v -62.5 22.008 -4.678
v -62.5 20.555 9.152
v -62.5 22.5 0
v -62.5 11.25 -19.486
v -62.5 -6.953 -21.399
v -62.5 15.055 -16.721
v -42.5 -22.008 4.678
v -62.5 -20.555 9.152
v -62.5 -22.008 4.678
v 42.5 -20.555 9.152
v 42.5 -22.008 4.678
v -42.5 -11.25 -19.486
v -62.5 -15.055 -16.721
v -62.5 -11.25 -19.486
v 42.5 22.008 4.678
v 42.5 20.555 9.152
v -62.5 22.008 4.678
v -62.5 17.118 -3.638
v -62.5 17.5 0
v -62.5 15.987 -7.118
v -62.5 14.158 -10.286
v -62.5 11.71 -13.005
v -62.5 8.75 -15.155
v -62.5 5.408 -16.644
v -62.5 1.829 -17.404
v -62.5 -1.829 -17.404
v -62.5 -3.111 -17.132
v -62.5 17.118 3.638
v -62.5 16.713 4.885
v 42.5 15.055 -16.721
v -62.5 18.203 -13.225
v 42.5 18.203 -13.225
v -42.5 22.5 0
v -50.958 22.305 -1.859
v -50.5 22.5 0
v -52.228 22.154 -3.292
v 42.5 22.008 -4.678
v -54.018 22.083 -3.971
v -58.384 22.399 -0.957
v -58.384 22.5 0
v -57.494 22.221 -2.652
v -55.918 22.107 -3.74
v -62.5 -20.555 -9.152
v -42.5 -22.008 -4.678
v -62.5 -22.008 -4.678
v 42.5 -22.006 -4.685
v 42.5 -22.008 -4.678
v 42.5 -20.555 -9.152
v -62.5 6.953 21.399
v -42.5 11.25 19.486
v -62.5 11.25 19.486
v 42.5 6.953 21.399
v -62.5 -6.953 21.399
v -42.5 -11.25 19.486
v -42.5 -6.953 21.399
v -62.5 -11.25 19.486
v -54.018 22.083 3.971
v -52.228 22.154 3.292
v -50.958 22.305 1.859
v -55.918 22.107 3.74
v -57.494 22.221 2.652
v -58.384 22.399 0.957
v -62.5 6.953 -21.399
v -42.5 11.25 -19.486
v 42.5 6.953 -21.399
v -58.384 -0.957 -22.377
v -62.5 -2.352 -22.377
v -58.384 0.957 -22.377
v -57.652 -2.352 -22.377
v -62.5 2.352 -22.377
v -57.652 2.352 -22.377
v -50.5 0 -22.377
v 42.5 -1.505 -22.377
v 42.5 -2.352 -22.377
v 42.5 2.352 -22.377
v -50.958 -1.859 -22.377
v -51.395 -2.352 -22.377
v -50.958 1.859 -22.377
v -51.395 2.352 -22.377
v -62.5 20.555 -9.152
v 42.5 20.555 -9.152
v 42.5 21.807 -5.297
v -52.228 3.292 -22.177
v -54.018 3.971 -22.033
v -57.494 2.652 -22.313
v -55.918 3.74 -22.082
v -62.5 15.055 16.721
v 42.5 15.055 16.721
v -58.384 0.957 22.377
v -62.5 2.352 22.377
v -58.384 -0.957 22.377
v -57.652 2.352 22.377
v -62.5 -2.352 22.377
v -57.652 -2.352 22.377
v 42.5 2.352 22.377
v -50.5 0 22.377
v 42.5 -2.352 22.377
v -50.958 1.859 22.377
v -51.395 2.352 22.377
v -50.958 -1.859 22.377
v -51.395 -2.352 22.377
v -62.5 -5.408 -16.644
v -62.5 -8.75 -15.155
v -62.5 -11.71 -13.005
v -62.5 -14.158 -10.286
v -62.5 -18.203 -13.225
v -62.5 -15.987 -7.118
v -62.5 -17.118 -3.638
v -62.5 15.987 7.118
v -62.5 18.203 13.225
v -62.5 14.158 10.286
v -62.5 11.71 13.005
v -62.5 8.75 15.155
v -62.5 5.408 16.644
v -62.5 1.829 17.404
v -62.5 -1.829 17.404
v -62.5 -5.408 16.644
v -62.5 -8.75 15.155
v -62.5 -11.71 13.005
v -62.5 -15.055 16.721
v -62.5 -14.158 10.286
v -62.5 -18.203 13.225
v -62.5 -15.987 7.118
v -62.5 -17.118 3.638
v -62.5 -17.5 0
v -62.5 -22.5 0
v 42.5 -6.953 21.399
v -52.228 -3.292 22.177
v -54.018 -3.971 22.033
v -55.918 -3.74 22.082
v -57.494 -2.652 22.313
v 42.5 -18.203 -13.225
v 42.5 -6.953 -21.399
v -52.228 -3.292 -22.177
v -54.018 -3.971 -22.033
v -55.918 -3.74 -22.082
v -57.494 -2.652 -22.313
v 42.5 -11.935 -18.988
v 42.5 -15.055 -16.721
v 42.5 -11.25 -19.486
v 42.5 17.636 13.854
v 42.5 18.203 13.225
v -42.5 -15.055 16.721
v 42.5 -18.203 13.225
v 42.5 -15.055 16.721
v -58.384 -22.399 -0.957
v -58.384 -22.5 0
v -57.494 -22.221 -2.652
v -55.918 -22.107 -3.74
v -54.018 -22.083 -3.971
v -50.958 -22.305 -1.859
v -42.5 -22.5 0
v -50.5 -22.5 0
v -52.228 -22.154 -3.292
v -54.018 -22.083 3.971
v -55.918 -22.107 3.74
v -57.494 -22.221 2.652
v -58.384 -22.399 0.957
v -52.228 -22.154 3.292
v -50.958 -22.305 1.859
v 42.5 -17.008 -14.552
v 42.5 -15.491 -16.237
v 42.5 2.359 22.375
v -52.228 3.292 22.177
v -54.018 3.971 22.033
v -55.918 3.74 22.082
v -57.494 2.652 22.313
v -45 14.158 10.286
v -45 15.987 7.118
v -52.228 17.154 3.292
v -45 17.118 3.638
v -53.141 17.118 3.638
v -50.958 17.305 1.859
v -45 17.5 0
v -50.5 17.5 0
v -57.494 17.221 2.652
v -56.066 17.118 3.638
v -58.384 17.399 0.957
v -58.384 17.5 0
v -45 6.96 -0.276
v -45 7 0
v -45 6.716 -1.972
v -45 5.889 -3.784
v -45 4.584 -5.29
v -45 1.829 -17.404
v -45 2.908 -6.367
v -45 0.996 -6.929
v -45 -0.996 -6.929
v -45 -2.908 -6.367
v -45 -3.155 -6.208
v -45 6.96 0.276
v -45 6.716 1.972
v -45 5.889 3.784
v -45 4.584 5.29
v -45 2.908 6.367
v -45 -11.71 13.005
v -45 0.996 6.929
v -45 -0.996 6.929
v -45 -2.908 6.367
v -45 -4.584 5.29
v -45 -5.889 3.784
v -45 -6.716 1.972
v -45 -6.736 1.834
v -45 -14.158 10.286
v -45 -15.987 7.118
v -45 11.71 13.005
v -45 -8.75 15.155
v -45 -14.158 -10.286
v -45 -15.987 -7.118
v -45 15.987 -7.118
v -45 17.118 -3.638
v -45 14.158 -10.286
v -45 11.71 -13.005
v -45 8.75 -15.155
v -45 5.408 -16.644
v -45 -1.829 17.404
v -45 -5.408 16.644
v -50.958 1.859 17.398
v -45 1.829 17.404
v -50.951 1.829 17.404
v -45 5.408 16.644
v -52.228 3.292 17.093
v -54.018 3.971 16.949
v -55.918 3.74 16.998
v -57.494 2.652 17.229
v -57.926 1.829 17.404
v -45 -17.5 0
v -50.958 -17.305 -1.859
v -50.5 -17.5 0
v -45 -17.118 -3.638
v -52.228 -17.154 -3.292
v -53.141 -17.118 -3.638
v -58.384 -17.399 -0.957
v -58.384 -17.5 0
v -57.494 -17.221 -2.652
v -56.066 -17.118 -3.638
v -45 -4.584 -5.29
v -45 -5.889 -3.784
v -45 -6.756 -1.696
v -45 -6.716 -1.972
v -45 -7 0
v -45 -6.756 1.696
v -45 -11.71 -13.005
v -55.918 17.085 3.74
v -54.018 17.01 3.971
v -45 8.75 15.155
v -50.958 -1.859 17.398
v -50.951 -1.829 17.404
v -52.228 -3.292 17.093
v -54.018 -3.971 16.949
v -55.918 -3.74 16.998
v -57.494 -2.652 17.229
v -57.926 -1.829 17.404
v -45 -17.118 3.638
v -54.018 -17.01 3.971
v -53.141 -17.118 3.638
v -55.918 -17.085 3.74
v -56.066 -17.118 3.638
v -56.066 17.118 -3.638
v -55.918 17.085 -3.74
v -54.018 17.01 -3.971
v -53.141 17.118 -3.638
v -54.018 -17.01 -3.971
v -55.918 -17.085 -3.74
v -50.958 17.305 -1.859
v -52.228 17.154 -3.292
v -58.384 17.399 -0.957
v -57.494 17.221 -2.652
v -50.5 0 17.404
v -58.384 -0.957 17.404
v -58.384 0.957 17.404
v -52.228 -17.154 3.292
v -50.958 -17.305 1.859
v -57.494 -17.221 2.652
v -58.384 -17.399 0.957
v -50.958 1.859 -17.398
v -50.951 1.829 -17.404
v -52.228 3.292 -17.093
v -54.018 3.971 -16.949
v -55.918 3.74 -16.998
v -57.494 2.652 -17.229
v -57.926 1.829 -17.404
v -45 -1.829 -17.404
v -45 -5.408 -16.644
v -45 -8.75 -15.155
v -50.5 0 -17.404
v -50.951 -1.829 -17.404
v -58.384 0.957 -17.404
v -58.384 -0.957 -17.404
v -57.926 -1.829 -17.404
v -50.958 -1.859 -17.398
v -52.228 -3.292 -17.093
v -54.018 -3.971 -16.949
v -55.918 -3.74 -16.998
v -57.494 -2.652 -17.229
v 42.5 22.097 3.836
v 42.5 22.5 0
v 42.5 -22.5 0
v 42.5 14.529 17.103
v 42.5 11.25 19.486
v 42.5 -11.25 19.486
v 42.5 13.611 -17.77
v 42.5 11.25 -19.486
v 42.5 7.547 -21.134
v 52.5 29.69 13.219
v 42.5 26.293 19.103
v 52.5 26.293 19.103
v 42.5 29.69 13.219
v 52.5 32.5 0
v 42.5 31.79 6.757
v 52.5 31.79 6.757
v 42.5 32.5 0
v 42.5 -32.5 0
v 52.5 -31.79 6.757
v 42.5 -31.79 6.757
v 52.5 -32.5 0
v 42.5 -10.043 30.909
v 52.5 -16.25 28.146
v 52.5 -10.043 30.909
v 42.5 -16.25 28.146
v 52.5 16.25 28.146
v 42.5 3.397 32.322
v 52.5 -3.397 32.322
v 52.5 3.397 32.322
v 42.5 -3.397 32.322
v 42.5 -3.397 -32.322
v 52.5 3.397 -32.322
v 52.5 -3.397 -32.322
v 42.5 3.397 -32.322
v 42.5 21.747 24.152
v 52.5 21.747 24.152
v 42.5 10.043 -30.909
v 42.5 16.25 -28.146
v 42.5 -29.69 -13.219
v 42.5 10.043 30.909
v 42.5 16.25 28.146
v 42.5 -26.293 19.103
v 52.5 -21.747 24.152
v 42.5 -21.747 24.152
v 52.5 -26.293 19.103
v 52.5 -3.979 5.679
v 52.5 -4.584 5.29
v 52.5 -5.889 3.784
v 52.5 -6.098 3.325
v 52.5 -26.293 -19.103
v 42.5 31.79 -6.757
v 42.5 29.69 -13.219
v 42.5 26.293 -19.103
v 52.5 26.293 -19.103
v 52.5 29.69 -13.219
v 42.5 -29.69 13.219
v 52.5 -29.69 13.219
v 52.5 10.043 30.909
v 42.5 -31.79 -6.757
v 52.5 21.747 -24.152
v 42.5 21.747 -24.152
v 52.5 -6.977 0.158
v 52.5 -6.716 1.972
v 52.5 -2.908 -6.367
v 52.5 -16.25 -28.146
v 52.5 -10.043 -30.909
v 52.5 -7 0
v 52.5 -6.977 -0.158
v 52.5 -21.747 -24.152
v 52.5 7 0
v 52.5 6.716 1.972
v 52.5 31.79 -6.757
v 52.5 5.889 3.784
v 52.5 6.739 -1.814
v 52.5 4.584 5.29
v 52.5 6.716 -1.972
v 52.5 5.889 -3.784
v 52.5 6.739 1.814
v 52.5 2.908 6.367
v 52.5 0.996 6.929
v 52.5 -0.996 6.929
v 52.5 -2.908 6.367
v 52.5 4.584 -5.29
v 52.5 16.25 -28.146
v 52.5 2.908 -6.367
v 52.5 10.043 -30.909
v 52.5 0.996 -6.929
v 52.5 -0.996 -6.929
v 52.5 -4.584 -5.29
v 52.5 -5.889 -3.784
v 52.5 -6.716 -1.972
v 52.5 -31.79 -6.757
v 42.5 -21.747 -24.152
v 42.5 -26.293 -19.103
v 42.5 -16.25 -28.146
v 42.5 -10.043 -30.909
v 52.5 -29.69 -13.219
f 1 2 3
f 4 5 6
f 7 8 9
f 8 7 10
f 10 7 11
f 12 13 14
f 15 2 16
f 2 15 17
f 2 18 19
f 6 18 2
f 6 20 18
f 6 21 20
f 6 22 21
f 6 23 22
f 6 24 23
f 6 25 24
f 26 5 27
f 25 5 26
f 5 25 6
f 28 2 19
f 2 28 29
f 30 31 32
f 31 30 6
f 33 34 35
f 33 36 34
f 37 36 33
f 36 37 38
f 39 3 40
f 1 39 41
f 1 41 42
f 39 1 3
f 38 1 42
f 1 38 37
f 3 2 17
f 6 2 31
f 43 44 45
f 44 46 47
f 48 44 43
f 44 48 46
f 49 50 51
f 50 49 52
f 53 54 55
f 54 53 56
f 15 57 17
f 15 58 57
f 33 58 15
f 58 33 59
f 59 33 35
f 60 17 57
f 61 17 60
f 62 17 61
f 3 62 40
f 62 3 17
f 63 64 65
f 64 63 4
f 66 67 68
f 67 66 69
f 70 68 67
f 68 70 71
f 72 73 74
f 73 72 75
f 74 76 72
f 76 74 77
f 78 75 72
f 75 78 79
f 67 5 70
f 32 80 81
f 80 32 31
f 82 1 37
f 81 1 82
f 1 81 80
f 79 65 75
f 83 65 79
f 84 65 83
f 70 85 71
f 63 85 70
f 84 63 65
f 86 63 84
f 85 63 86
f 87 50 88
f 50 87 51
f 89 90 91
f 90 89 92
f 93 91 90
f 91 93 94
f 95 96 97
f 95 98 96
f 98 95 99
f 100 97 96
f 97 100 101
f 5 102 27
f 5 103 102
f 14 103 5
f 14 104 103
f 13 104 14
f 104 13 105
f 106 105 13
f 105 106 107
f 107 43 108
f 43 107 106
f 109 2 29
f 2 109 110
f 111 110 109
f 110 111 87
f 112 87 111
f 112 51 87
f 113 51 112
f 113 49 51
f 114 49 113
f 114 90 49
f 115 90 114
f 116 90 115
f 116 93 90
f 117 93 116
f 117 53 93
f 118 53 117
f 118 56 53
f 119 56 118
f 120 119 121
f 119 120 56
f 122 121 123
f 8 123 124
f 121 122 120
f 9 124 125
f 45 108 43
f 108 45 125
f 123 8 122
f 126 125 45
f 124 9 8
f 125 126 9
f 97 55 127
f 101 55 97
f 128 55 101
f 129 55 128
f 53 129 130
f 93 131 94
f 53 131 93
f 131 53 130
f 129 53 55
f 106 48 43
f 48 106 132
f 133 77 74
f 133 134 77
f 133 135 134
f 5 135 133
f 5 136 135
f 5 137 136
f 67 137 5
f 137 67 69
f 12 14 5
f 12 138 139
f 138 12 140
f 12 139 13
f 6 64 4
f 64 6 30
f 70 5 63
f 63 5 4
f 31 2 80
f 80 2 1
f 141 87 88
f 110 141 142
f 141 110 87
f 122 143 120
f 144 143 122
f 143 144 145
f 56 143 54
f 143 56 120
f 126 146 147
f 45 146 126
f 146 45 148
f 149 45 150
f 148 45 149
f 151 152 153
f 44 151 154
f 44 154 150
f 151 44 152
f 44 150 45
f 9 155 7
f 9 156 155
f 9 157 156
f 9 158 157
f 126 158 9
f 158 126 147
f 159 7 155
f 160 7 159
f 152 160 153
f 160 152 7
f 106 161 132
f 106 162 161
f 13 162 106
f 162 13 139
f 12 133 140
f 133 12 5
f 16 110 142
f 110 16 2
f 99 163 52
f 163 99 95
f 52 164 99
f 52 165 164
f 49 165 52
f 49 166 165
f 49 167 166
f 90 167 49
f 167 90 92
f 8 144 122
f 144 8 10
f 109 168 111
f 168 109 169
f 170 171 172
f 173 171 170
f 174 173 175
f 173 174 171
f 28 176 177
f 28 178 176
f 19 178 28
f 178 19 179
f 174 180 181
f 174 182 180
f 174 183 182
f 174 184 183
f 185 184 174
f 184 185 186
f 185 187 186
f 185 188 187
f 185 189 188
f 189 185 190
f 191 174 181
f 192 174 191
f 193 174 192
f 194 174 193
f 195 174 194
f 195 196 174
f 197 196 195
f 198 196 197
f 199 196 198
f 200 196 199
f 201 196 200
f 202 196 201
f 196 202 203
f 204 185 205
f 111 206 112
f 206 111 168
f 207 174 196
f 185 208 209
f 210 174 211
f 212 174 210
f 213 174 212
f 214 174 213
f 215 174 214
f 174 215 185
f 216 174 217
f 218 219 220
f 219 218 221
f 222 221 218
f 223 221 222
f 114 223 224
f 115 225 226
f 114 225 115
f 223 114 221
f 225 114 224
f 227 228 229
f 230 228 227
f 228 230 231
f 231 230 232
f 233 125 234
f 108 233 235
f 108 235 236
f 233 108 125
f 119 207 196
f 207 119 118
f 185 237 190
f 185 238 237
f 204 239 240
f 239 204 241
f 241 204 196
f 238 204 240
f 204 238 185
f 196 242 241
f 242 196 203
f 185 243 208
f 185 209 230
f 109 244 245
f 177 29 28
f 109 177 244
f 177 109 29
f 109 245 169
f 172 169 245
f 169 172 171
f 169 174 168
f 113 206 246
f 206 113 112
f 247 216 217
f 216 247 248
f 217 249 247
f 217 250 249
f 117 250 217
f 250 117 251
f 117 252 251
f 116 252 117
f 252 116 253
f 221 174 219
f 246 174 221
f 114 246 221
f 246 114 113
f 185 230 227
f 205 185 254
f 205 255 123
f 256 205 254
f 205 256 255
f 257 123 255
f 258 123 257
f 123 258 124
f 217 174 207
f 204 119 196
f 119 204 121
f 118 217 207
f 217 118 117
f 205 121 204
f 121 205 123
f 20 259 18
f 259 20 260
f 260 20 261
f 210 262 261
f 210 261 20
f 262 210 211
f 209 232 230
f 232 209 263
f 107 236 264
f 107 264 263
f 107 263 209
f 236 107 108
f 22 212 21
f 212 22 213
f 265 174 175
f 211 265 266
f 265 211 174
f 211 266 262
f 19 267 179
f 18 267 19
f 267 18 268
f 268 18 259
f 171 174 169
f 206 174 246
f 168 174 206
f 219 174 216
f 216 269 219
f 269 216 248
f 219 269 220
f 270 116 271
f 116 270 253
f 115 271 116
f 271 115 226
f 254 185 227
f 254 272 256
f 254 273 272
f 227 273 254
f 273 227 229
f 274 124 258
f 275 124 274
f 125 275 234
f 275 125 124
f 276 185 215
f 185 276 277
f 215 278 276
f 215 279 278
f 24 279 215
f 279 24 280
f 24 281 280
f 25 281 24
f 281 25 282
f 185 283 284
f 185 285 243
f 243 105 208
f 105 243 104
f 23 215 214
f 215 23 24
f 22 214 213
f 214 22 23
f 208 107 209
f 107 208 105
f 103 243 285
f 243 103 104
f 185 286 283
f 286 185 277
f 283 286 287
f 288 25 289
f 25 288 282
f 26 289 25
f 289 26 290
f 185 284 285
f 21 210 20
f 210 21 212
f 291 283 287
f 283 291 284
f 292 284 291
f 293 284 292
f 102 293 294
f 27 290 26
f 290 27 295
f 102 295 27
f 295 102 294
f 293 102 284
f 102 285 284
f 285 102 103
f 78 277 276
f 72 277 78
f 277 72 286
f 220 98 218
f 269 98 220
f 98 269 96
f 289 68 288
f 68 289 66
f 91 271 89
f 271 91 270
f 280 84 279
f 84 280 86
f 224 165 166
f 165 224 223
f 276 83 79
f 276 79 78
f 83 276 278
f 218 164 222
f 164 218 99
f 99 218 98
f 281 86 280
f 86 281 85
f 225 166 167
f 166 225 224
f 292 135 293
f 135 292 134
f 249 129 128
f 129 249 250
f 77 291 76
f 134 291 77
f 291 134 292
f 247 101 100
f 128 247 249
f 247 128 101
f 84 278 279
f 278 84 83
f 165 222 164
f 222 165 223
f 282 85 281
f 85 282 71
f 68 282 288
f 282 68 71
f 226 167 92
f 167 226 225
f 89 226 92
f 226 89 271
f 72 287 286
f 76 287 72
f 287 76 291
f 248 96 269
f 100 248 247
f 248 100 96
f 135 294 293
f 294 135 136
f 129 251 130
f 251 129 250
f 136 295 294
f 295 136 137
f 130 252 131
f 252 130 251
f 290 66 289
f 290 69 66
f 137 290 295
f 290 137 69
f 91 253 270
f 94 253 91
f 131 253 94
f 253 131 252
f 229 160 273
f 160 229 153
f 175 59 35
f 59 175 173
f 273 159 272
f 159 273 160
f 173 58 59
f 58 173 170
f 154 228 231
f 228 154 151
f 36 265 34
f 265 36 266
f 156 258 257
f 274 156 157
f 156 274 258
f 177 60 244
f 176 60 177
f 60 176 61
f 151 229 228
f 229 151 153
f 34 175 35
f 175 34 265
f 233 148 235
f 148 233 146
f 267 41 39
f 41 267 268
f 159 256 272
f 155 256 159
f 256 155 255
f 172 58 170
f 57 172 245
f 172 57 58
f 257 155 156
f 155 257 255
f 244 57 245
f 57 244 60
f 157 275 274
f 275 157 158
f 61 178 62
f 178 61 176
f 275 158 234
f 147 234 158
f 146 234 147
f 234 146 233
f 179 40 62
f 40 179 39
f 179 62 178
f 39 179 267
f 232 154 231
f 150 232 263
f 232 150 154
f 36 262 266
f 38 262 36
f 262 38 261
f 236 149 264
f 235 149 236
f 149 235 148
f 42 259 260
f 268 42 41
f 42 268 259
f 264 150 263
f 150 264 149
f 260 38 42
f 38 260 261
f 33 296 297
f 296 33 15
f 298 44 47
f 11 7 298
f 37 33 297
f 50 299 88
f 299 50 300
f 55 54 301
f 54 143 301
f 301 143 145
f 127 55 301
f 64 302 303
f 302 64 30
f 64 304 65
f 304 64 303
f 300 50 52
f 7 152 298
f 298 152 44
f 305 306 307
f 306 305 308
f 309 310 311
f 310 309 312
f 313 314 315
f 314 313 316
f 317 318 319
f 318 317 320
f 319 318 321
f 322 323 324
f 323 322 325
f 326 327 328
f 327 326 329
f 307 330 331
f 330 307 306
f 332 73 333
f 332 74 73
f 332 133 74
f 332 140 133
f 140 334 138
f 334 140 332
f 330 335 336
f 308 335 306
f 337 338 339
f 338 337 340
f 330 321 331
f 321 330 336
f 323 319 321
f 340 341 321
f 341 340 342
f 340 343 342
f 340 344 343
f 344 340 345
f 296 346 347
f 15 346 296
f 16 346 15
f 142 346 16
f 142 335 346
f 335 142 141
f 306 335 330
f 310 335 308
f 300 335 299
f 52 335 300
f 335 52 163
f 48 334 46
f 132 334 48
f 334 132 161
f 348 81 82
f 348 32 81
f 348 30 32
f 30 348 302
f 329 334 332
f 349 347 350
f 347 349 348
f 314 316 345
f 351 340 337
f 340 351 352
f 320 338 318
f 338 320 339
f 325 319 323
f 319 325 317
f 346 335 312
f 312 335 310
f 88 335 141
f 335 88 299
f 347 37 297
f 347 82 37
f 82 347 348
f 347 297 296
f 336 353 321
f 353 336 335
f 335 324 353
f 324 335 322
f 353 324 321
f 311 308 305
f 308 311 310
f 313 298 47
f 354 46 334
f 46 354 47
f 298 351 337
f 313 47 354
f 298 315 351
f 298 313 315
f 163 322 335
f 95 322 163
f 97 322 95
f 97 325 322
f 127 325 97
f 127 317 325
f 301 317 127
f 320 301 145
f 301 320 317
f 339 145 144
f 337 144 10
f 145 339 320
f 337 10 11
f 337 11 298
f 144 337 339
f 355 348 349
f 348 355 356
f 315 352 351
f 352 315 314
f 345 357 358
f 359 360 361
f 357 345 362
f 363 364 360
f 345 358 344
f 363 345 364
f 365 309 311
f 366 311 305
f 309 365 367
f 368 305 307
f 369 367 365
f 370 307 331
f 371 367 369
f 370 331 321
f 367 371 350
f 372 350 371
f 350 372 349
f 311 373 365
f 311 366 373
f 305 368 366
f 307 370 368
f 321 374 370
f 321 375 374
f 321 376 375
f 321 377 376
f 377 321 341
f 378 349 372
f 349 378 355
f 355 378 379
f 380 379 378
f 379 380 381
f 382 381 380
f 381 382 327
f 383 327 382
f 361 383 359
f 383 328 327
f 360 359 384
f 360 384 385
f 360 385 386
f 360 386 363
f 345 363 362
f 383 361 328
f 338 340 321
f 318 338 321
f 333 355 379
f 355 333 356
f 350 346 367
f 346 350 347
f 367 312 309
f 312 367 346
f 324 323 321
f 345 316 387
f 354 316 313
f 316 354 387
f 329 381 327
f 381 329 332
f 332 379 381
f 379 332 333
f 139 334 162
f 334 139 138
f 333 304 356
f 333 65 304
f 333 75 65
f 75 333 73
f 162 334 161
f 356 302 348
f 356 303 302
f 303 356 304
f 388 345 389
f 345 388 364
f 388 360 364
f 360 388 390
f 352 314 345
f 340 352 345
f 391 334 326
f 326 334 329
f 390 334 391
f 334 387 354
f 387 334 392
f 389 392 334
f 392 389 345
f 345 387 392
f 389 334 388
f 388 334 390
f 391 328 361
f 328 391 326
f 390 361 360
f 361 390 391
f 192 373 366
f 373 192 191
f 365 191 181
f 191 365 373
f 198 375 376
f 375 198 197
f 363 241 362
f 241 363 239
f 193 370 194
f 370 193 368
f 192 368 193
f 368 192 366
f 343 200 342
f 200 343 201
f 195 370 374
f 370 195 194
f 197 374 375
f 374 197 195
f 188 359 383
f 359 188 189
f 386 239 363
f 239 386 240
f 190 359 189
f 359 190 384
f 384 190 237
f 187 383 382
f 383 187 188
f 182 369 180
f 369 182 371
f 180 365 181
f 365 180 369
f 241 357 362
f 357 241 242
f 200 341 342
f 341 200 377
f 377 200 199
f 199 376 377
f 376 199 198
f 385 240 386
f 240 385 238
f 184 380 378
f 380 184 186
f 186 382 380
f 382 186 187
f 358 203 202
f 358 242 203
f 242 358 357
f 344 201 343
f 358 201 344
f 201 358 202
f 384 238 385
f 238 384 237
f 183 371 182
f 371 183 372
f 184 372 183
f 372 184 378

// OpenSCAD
poleDia = 14;
SpoolDia = 45;
SpoolWidth = 75;


difference(){
    holder();
    pole();
}


module holder(){
    rotate([90, 0, 90])
        cylinder(r=SpoolDia/2, h=SpoolWidth+10, center=true);    
    rotate([90, 0, 90])
        translate([0, 0, (SpoolWidth/2)+10])        
            cylinder(r=(SpoolDia/2) + 10, h=10, center=true);    
    difference(){
        rotate([90, 0, 90])
            translate([0, 0, -(SpoolWidth/2)-15])        
                cylinder(r=(SpoolDia/2), h=20, center=true);
        rotate([90, 0, 90])
            translate([0, 0, -(SpoolWidth/2)-20])        
                cylinder(r=(SpoolDia/2)-5, h=25, center=true);
        translate([-(SpoolWidth/2)-17, 0, 0])        
            cylinder(r=4, h=100, center=true);
        translate([-(SpoolWidth/2)-17, 0, 0])
            rotate([90, 0, 0])        
            cylinder(r=4, h=100, center=true);                    
                                
    }
}


module pole(){
    rotate([90, 0, 90])
        cylinder(r=poleDia/2, h=SpoolWidth+50, center=true);    
}
